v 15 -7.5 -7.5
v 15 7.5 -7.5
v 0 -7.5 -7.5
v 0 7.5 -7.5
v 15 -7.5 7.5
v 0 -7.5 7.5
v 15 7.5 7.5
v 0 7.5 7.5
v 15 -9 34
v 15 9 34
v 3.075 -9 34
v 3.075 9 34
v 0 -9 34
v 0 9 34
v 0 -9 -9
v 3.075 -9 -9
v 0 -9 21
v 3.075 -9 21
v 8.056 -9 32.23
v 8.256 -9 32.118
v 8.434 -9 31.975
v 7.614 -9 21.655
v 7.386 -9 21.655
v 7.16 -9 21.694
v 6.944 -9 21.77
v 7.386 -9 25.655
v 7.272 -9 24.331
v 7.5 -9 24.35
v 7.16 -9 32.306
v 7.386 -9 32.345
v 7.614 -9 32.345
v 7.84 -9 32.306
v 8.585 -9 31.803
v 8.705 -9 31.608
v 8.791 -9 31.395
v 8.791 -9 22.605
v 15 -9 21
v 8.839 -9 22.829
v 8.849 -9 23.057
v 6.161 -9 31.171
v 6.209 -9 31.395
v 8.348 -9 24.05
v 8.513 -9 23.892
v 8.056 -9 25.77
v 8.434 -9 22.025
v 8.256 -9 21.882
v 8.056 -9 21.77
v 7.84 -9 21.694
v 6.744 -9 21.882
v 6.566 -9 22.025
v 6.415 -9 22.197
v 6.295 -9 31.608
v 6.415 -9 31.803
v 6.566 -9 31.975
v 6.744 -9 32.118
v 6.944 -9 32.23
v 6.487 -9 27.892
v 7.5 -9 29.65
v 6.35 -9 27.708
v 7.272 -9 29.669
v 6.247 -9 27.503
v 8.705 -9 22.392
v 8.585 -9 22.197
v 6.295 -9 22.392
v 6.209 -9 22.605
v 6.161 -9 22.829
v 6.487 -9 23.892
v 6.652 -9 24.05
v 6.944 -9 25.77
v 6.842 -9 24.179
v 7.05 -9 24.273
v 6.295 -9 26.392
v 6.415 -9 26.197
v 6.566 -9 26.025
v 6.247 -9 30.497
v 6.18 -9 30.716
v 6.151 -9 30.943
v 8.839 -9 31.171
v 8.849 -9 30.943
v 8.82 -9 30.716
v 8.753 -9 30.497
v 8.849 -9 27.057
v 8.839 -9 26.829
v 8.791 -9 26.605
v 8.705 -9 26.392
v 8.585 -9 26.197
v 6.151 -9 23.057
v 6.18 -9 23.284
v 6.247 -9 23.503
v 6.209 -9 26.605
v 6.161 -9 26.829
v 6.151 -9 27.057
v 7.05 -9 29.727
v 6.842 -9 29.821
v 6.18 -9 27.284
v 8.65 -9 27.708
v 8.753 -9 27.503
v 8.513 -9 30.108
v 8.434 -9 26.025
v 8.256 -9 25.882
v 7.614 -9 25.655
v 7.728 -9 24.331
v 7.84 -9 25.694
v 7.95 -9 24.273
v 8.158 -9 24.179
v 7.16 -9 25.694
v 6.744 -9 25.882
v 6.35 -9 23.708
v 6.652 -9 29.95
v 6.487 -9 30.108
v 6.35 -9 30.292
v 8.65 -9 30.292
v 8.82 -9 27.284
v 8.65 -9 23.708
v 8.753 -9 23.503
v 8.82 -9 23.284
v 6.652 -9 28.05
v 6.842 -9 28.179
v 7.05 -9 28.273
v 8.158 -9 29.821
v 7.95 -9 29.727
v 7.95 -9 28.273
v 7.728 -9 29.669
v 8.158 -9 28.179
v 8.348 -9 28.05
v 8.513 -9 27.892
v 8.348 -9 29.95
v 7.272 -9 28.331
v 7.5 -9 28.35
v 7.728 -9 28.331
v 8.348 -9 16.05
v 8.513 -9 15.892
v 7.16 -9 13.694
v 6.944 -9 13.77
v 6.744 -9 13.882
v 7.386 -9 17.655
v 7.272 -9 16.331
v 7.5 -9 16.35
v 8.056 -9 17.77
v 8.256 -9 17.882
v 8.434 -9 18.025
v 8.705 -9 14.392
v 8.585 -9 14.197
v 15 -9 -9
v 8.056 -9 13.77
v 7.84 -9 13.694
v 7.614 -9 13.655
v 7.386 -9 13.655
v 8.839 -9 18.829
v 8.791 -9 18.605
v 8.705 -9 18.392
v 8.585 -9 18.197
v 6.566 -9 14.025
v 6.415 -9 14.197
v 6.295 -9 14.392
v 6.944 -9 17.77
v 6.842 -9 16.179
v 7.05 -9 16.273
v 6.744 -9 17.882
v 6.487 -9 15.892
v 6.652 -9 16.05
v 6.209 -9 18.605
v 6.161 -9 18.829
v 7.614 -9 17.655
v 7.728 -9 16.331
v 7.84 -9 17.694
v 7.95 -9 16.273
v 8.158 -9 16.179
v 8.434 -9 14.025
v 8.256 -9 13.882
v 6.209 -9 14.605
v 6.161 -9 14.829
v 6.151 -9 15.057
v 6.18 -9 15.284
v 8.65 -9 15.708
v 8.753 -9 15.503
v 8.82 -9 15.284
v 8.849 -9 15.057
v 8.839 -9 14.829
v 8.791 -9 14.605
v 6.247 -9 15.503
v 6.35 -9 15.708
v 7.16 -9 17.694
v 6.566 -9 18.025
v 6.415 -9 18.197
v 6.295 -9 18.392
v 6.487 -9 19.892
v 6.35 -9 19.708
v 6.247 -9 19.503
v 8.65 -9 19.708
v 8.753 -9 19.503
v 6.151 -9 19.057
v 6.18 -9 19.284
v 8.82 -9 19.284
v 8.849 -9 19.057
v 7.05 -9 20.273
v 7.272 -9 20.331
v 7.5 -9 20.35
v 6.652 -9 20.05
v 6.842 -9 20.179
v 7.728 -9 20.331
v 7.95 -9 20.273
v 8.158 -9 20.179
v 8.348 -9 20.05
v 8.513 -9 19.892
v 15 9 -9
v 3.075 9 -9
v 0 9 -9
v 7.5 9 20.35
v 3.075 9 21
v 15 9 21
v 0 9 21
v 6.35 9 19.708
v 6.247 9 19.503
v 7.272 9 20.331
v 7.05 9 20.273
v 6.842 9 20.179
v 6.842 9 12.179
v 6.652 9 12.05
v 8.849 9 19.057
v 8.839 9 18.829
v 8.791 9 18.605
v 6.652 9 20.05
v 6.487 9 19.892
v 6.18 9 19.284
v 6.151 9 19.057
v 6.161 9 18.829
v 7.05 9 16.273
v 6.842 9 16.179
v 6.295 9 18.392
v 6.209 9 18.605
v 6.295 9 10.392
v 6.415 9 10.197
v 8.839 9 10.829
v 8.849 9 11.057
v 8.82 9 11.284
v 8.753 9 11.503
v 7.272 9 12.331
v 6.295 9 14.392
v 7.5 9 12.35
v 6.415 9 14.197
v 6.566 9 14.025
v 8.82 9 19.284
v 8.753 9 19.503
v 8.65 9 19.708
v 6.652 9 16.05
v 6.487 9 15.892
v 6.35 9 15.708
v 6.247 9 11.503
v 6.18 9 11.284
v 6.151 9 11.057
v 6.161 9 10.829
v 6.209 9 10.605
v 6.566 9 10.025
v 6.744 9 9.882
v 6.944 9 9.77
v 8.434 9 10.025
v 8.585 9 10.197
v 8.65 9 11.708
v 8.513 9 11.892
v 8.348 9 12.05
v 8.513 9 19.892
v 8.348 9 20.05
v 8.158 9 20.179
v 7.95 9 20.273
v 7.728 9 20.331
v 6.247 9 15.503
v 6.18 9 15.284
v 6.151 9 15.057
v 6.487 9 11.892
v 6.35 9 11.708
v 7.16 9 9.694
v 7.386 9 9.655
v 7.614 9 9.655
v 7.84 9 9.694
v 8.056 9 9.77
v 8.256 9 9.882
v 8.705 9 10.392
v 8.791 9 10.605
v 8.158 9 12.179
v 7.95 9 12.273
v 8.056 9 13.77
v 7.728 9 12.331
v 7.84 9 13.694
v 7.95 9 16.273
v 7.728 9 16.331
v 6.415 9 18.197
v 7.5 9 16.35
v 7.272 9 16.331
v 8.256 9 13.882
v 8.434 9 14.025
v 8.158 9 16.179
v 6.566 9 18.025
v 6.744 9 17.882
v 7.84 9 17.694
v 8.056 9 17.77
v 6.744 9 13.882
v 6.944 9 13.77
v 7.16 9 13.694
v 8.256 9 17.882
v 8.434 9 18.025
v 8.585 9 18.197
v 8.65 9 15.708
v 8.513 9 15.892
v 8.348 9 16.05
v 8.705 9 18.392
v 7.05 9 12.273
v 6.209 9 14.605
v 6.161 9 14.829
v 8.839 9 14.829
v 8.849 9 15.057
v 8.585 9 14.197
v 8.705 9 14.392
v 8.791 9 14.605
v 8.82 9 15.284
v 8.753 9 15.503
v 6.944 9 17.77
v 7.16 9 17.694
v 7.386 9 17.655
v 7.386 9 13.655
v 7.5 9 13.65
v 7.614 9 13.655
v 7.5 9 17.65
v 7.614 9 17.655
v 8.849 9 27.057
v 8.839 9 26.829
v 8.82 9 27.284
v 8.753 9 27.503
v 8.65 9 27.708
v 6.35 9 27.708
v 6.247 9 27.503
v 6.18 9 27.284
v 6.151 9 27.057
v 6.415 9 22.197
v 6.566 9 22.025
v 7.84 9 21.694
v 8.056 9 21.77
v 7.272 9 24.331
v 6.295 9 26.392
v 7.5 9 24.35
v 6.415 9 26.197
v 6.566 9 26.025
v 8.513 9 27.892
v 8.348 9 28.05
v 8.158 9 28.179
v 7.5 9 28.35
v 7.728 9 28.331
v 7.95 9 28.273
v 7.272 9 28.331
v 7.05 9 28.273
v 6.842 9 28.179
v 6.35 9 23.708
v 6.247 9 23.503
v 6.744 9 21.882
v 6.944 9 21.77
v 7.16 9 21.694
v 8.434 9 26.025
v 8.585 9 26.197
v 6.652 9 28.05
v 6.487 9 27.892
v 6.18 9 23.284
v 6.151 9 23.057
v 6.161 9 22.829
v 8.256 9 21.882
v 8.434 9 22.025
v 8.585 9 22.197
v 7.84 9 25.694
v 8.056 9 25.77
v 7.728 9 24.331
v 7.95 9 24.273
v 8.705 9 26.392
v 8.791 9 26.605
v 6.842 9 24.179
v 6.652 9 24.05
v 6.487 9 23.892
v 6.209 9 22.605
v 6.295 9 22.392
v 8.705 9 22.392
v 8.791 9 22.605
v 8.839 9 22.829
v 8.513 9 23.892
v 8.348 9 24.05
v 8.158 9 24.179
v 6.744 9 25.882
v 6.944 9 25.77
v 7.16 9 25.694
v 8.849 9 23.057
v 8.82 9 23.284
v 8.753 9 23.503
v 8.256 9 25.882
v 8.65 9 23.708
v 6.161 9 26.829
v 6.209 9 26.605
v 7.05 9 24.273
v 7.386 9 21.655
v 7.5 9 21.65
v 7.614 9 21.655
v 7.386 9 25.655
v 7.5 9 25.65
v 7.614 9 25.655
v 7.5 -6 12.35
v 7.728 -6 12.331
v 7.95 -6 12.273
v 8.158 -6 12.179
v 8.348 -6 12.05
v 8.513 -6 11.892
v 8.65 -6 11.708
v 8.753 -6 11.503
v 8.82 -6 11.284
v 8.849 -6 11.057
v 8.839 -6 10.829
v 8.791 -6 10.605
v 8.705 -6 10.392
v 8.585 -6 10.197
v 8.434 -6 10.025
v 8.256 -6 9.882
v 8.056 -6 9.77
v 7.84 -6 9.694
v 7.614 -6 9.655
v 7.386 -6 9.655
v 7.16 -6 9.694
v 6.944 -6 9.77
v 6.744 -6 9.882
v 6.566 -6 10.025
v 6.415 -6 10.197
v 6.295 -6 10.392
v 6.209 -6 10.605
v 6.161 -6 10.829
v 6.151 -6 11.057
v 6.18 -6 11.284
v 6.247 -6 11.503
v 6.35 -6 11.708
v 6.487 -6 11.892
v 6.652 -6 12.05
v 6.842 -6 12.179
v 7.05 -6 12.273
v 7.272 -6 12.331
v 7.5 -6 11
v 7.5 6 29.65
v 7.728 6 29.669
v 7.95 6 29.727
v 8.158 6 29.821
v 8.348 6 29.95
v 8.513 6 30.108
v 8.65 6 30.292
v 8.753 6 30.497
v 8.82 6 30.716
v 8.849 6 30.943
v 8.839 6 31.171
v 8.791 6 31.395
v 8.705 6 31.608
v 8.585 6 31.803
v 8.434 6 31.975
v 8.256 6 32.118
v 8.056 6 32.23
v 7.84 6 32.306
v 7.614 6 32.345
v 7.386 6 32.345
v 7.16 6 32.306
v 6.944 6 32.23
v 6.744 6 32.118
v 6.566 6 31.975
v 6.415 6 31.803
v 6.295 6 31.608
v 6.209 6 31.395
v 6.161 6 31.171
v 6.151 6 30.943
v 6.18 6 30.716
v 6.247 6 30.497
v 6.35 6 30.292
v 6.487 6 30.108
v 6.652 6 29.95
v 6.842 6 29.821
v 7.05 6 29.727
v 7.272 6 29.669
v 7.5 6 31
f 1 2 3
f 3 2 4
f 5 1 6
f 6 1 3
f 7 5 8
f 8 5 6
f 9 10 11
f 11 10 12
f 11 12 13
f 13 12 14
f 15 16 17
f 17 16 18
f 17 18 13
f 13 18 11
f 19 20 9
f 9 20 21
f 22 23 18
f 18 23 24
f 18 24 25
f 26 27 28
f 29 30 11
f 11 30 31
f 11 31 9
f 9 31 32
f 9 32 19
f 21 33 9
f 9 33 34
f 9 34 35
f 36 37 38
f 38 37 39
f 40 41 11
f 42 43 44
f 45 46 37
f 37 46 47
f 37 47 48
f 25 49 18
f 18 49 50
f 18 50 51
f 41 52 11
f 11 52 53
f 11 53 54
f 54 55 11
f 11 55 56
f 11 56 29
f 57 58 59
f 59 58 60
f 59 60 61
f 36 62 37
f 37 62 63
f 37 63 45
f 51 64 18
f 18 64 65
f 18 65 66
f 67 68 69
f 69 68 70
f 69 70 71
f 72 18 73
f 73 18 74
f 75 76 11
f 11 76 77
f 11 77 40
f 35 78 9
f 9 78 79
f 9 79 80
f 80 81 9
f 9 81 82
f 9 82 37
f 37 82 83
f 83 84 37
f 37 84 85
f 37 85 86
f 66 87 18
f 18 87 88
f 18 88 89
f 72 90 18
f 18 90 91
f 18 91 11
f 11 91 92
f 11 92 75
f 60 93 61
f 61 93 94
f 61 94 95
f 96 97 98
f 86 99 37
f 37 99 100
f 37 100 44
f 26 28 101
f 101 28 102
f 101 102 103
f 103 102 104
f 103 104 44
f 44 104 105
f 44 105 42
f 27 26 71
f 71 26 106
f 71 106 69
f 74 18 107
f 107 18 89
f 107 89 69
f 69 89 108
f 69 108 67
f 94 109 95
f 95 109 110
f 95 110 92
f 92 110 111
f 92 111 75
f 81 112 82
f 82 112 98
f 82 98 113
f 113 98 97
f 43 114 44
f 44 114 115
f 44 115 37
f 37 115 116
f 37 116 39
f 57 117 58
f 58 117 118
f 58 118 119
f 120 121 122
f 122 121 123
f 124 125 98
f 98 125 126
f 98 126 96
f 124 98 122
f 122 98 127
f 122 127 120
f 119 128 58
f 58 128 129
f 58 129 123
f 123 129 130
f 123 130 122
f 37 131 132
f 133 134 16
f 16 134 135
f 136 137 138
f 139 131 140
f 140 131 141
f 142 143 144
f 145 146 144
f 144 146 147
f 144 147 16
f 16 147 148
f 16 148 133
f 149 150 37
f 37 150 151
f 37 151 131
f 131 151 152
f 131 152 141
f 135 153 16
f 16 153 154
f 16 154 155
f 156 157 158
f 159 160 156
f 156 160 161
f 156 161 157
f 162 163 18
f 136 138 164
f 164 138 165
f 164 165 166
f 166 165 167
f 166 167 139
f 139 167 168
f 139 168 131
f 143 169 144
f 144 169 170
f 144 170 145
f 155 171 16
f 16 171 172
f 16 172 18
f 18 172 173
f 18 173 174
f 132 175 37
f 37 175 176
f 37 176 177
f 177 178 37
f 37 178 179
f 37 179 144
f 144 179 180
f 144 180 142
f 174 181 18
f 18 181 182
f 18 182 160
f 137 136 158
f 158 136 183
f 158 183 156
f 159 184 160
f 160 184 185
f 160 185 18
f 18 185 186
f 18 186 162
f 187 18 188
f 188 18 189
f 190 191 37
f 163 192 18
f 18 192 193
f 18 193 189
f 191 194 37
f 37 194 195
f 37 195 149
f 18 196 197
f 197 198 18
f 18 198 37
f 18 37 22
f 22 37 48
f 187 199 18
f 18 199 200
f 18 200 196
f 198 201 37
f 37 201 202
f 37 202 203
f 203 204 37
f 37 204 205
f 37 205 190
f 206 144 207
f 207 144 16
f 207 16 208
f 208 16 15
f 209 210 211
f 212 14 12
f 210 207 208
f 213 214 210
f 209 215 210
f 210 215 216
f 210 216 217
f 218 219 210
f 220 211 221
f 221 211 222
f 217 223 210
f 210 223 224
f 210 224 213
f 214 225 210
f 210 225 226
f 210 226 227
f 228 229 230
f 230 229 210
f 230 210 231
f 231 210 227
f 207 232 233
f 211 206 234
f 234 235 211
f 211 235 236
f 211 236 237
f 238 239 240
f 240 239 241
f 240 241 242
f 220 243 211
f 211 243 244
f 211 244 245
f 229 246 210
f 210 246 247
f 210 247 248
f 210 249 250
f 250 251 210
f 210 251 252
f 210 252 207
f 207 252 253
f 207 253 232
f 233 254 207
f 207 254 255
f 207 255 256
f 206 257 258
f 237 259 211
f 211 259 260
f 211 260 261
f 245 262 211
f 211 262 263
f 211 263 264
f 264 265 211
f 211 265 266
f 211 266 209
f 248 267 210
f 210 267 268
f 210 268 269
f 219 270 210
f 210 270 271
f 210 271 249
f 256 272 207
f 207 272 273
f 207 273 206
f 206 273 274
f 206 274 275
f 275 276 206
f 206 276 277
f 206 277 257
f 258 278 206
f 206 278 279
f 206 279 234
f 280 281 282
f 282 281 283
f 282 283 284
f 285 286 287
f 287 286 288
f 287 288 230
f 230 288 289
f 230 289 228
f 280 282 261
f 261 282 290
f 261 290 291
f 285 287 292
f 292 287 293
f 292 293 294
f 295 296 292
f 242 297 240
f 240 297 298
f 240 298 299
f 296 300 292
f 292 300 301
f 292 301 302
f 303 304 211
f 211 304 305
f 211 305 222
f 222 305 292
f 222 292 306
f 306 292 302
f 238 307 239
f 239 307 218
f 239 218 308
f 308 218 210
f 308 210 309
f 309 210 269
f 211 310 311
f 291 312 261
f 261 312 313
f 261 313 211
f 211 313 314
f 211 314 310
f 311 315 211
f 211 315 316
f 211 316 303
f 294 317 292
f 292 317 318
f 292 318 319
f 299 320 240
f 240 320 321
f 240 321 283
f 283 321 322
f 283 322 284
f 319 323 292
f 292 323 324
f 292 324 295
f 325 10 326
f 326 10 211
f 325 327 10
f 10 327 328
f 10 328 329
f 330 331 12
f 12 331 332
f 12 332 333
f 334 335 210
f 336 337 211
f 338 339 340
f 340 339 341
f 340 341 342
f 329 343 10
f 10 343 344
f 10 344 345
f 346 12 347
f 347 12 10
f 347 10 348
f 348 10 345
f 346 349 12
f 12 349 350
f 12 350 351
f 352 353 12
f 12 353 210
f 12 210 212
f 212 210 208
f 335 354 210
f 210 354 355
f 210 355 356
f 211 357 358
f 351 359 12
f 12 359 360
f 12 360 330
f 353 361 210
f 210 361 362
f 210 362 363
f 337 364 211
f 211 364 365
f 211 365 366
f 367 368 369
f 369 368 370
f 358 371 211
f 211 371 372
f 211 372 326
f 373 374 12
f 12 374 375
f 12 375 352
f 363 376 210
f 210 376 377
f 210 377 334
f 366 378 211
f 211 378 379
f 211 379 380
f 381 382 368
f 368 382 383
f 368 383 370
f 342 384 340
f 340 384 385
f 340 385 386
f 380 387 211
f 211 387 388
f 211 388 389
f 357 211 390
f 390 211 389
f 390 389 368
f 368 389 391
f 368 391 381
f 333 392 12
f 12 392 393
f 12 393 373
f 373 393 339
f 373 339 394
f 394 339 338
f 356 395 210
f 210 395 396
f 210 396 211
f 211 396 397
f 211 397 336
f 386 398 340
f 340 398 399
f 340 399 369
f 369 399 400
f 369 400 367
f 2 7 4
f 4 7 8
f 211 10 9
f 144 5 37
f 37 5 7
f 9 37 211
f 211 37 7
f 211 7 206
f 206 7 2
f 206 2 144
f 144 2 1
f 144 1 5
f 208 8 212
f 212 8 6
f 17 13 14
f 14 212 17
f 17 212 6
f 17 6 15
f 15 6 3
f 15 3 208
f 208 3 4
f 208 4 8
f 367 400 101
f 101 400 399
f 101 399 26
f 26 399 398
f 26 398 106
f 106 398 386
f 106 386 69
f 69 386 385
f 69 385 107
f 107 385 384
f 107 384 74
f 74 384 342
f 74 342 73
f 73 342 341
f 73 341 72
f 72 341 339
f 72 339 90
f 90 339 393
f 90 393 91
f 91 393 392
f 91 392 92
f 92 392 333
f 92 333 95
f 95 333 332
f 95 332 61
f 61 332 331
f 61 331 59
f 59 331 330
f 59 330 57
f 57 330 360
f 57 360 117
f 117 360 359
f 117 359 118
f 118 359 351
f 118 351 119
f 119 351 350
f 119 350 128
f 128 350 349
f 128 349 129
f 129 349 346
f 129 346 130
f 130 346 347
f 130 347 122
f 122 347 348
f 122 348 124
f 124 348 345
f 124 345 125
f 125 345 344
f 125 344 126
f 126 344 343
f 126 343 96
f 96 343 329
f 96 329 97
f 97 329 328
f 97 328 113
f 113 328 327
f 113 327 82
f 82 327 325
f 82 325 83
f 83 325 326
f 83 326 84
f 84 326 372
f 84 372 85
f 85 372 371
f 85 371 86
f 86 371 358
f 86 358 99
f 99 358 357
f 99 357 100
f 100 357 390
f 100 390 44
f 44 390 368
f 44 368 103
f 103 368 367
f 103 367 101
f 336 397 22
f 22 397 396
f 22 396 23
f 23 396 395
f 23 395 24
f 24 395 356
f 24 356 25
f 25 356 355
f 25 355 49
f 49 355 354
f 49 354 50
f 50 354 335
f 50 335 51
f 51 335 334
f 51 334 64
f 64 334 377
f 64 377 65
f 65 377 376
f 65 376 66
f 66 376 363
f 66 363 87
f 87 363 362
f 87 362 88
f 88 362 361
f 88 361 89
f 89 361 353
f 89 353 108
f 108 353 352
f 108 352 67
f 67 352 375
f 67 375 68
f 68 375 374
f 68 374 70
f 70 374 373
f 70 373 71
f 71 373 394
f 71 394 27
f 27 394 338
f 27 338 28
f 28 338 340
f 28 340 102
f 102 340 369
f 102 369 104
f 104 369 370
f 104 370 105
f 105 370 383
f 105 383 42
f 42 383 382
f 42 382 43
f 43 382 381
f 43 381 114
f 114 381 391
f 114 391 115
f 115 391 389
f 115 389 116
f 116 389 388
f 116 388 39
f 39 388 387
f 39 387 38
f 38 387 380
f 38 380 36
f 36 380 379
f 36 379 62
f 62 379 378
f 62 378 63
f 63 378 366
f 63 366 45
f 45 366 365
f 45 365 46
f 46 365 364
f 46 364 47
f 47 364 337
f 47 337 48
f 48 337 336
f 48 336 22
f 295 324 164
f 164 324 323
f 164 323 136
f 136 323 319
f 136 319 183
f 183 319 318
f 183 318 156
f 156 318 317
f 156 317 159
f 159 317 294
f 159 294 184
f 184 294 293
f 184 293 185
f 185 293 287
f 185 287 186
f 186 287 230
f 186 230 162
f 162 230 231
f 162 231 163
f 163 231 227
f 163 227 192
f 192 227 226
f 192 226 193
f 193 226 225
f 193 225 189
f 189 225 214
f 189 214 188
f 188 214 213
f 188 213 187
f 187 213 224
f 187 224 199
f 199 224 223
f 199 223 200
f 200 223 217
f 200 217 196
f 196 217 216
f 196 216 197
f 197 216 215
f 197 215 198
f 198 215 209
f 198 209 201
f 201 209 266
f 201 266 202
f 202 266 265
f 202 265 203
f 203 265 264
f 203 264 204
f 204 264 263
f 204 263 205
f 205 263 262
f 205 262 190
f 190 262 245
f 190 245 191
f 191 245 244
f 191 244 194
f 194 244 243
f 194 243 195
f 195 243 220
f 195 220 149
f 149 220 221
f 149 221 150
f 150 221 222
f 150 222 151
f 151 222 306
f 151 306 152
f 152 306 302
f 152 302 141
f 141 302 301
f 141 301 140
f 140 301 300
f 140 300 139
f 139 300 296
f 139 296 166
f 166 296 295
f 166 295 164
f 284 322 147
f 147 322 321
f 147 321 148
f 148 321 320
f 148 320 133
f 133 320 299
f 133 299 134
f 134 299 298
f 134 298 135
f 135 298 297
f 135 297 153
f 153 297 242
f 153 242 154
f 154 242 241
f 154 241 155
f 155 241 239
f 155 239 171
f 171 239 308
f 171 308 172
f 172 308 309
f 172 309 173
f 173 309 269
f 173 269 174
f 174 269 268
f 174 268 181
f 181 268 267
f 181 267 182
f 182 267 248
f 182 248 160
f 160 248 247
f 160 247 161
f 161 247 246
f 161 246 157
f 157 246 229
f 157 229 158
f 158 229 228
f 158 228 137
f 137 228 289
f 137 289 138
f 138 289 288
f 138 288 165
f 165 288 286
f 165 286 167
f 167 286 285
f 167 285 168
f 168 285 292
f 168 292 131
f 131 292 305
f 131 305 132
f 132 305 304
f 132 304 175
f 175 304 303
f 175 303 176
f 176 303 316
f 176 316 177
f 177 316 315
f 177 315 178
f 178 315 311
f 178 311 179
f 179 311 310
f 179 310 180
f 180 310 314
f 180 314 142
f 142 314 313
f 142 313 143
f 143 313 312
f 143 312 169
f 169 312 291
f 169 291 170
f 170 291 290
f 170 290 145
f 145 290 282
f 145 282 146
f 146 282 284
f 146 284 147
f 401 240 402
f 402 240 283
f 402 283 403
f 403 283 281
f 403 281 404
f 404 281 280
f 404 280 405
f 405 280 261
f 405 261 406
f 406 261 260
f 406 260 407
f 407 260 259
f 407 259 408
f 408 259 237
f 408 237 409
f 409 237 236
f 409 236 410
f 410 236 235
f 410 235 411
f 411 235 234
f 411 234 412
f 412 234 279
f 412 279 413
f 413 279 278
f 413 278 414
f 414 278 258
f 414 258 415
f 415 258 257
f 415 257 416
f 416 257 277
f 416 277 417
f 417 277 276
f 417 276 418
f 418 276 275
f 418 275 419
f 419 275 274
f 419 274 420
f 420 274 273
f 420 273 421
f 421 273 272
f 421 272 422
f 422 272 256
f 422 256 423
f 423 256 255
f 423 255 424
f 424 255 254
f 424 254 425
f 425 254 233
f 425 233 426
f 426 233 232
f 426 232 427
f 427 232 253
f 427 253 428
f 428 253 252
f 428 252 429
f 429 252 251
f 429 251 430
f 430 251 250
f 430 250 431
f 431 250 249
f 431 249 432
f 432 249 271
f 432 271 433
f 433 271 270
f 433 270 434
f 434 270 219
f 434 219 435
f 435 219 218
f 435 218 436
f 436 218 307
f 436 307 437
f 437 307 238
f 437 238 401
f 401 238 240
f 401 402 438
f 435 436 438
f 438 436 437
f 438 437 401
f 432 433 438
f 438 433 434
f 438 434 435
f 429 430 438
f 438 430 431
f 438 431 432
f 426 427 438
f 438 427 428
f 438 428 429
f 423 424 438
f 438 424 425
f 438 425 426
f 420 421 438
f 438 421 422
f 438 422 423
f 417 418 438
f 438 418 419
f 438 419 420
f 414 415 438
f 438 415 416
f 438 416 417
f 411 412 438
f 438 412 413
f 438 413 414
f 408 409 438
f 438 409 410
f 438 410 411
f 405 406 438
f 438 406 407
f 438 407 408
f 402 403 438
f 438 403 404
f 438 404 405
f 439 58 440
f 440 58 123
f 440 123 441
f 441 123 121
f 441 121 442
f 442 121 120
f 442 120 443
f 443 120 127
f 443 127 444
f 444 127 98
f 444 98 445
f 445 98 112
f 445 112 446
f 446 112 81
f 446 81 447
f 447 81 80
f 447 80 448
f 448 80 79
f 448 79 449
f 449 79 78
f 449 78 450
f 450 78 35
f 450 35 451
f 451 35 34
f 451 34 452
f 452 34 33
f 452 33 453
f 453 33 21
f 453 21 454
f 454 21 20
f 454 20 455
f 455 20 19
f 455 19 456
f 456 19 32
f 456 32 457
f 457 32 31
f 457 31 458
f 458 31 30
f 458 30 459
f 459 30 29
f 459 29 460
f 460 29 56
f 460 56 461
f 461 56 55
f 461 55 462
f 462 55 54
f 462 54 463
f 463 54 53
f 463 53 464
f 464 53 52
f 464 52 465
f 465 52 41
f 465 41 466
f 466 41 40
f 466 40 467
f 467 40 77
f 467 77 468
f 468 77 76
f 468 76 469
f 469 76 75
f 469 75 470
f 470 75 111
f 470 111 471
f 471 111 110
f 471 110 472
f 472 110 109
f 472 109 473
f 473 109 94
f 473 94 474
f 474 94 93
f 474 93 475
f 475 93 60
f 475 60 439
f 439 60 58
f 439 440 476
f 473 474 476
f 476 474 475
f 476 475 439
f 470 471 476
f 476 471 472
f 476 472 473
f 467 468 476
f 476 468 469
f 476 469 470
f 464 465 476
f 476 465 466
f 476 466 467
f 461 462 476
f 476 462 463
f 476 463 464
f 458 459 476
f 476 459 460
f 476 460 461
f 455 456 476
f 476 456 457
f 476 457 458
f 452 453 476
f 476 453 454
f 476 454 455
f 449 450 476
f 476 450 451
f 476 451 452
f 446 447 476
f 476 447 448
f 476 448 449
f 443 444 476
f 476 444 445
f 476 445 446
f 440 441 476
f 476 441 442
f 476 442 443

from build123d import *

# Parameters (mm, degrees)
SCHIZZO1_W                    = 25
SCHIZZO1_H                    = 18
SCHIZZO1_W_2                  = 18
SCHIZZO1_W_3                  = 15
SCHIZZO1_H_2                  = 15
ESTRUSIONE_ESTRUSIONE1_DEPTH  = 15
TAGLIO_ESTRUSIONE1_DEPTH      = 42.291645644
TAGLIO_ESTRUSIONE1_DEPTH_BACK = 42.291645644
SCHIZZO2_R                    = 1.35
SCHIZZO3_R                    = 1.35
TAGLIO_ESTRUSIONE2_DEPTH      = 15
SCHIZZO4_R                    = 1.35
TAGLIO_ESTRUSIONE3_DEPTH      = 15


with BuildPart() as part:
    # Schizzo1 → Estrusione-Estrusione1 (new body)
    # profile 1 of 2: a face of its own
    with BuildSketch(Plane(origin=(0, 0, 0), x_dir=(0, 0, -1), z_dir=(1, 0, 0))):
        with Locations((-21.5, 0)):
            Rectangle(SCHIZZO1_W, SCHIZZO1_H)
    # profile 2 of 2: a face of its own
    with BuildSketch(Plane(origin=(0, 0, 0), x_dir=(0, 0, -1), z_dir=(1, 0, 0))):
        Rectangle(SCHIZZO1_W_2, SCHIZZO1_H)
        Rectangle(SCHIZZO1_W_3, SCHIZZO1_H_2, mode=Mode.SUBTRACT)
    extrude(amount=ESTRUSIONE_ESTRUSIONE1_DEPTH)

    # Schizzo2 → Taglio-Estrusione1 (cut, two sides: drawn at the far end of the back side and taken through both)
    with BuildSketch(Plane(origin=(0, 9, 0), x_dir=(1, 0, 0), z_dir=(0, 1, 0)).offset(-TAGLIO_ESTRUSIONE1_DEPTH_BACK)):
        with Locations(Location((7.5, -27, 0), (0, 0, 270))):
            Circle(SCHIZZO2_R)
        with Locations(Location((7.5, -23, 0), (0, 0, 270))):
            Circle(SCHIZZO2_R)
        with Locations(Location((7.5, -19, 0), (0, 0, 270))):
            Circle(SCHIZZO2_R)
        with Locations(Location((7.5, -15, 0), (0, 0, 270))):
            Circle(SCHIZZO2_R)
    extrude(amount=TAGLIO_ESTRUSIONE1_DEPTH + TAGLIO_ESTRUSIONE1_DEPTH_BACK, mode=Mode.SUBTRACT)

    # Schizzo3 → Taglio-Estrusione2 (cut)
    with BuildSketch(Plane(origin=(0, 9, 0), x_dir=(1, 0, 0), z_dir=(0, 1, 0))):
        with Locations(Location((7.5, -11, 0), (0, 0, 270))):
            Circle(SCHIZZO3_R)
    extrude(amount=-TAGLIO_ESTRUSIONE2_DEPTH, mode=Mode.SUBTRACT)

    # Schizzo4 → Taglio-Estrusione3 (cut)
    with BuildSketch(Plane.XZ.offset(9)):
        with Locations(Location((7.5, 31, 0), (0, 0, 270))):
            Circle(SCHIZZO4_R)
    extrude(amount=-TAGLIO_ESTRUSIONE3_DEPTH, mode=Mode.SUBTRACT)


solid = part.part
